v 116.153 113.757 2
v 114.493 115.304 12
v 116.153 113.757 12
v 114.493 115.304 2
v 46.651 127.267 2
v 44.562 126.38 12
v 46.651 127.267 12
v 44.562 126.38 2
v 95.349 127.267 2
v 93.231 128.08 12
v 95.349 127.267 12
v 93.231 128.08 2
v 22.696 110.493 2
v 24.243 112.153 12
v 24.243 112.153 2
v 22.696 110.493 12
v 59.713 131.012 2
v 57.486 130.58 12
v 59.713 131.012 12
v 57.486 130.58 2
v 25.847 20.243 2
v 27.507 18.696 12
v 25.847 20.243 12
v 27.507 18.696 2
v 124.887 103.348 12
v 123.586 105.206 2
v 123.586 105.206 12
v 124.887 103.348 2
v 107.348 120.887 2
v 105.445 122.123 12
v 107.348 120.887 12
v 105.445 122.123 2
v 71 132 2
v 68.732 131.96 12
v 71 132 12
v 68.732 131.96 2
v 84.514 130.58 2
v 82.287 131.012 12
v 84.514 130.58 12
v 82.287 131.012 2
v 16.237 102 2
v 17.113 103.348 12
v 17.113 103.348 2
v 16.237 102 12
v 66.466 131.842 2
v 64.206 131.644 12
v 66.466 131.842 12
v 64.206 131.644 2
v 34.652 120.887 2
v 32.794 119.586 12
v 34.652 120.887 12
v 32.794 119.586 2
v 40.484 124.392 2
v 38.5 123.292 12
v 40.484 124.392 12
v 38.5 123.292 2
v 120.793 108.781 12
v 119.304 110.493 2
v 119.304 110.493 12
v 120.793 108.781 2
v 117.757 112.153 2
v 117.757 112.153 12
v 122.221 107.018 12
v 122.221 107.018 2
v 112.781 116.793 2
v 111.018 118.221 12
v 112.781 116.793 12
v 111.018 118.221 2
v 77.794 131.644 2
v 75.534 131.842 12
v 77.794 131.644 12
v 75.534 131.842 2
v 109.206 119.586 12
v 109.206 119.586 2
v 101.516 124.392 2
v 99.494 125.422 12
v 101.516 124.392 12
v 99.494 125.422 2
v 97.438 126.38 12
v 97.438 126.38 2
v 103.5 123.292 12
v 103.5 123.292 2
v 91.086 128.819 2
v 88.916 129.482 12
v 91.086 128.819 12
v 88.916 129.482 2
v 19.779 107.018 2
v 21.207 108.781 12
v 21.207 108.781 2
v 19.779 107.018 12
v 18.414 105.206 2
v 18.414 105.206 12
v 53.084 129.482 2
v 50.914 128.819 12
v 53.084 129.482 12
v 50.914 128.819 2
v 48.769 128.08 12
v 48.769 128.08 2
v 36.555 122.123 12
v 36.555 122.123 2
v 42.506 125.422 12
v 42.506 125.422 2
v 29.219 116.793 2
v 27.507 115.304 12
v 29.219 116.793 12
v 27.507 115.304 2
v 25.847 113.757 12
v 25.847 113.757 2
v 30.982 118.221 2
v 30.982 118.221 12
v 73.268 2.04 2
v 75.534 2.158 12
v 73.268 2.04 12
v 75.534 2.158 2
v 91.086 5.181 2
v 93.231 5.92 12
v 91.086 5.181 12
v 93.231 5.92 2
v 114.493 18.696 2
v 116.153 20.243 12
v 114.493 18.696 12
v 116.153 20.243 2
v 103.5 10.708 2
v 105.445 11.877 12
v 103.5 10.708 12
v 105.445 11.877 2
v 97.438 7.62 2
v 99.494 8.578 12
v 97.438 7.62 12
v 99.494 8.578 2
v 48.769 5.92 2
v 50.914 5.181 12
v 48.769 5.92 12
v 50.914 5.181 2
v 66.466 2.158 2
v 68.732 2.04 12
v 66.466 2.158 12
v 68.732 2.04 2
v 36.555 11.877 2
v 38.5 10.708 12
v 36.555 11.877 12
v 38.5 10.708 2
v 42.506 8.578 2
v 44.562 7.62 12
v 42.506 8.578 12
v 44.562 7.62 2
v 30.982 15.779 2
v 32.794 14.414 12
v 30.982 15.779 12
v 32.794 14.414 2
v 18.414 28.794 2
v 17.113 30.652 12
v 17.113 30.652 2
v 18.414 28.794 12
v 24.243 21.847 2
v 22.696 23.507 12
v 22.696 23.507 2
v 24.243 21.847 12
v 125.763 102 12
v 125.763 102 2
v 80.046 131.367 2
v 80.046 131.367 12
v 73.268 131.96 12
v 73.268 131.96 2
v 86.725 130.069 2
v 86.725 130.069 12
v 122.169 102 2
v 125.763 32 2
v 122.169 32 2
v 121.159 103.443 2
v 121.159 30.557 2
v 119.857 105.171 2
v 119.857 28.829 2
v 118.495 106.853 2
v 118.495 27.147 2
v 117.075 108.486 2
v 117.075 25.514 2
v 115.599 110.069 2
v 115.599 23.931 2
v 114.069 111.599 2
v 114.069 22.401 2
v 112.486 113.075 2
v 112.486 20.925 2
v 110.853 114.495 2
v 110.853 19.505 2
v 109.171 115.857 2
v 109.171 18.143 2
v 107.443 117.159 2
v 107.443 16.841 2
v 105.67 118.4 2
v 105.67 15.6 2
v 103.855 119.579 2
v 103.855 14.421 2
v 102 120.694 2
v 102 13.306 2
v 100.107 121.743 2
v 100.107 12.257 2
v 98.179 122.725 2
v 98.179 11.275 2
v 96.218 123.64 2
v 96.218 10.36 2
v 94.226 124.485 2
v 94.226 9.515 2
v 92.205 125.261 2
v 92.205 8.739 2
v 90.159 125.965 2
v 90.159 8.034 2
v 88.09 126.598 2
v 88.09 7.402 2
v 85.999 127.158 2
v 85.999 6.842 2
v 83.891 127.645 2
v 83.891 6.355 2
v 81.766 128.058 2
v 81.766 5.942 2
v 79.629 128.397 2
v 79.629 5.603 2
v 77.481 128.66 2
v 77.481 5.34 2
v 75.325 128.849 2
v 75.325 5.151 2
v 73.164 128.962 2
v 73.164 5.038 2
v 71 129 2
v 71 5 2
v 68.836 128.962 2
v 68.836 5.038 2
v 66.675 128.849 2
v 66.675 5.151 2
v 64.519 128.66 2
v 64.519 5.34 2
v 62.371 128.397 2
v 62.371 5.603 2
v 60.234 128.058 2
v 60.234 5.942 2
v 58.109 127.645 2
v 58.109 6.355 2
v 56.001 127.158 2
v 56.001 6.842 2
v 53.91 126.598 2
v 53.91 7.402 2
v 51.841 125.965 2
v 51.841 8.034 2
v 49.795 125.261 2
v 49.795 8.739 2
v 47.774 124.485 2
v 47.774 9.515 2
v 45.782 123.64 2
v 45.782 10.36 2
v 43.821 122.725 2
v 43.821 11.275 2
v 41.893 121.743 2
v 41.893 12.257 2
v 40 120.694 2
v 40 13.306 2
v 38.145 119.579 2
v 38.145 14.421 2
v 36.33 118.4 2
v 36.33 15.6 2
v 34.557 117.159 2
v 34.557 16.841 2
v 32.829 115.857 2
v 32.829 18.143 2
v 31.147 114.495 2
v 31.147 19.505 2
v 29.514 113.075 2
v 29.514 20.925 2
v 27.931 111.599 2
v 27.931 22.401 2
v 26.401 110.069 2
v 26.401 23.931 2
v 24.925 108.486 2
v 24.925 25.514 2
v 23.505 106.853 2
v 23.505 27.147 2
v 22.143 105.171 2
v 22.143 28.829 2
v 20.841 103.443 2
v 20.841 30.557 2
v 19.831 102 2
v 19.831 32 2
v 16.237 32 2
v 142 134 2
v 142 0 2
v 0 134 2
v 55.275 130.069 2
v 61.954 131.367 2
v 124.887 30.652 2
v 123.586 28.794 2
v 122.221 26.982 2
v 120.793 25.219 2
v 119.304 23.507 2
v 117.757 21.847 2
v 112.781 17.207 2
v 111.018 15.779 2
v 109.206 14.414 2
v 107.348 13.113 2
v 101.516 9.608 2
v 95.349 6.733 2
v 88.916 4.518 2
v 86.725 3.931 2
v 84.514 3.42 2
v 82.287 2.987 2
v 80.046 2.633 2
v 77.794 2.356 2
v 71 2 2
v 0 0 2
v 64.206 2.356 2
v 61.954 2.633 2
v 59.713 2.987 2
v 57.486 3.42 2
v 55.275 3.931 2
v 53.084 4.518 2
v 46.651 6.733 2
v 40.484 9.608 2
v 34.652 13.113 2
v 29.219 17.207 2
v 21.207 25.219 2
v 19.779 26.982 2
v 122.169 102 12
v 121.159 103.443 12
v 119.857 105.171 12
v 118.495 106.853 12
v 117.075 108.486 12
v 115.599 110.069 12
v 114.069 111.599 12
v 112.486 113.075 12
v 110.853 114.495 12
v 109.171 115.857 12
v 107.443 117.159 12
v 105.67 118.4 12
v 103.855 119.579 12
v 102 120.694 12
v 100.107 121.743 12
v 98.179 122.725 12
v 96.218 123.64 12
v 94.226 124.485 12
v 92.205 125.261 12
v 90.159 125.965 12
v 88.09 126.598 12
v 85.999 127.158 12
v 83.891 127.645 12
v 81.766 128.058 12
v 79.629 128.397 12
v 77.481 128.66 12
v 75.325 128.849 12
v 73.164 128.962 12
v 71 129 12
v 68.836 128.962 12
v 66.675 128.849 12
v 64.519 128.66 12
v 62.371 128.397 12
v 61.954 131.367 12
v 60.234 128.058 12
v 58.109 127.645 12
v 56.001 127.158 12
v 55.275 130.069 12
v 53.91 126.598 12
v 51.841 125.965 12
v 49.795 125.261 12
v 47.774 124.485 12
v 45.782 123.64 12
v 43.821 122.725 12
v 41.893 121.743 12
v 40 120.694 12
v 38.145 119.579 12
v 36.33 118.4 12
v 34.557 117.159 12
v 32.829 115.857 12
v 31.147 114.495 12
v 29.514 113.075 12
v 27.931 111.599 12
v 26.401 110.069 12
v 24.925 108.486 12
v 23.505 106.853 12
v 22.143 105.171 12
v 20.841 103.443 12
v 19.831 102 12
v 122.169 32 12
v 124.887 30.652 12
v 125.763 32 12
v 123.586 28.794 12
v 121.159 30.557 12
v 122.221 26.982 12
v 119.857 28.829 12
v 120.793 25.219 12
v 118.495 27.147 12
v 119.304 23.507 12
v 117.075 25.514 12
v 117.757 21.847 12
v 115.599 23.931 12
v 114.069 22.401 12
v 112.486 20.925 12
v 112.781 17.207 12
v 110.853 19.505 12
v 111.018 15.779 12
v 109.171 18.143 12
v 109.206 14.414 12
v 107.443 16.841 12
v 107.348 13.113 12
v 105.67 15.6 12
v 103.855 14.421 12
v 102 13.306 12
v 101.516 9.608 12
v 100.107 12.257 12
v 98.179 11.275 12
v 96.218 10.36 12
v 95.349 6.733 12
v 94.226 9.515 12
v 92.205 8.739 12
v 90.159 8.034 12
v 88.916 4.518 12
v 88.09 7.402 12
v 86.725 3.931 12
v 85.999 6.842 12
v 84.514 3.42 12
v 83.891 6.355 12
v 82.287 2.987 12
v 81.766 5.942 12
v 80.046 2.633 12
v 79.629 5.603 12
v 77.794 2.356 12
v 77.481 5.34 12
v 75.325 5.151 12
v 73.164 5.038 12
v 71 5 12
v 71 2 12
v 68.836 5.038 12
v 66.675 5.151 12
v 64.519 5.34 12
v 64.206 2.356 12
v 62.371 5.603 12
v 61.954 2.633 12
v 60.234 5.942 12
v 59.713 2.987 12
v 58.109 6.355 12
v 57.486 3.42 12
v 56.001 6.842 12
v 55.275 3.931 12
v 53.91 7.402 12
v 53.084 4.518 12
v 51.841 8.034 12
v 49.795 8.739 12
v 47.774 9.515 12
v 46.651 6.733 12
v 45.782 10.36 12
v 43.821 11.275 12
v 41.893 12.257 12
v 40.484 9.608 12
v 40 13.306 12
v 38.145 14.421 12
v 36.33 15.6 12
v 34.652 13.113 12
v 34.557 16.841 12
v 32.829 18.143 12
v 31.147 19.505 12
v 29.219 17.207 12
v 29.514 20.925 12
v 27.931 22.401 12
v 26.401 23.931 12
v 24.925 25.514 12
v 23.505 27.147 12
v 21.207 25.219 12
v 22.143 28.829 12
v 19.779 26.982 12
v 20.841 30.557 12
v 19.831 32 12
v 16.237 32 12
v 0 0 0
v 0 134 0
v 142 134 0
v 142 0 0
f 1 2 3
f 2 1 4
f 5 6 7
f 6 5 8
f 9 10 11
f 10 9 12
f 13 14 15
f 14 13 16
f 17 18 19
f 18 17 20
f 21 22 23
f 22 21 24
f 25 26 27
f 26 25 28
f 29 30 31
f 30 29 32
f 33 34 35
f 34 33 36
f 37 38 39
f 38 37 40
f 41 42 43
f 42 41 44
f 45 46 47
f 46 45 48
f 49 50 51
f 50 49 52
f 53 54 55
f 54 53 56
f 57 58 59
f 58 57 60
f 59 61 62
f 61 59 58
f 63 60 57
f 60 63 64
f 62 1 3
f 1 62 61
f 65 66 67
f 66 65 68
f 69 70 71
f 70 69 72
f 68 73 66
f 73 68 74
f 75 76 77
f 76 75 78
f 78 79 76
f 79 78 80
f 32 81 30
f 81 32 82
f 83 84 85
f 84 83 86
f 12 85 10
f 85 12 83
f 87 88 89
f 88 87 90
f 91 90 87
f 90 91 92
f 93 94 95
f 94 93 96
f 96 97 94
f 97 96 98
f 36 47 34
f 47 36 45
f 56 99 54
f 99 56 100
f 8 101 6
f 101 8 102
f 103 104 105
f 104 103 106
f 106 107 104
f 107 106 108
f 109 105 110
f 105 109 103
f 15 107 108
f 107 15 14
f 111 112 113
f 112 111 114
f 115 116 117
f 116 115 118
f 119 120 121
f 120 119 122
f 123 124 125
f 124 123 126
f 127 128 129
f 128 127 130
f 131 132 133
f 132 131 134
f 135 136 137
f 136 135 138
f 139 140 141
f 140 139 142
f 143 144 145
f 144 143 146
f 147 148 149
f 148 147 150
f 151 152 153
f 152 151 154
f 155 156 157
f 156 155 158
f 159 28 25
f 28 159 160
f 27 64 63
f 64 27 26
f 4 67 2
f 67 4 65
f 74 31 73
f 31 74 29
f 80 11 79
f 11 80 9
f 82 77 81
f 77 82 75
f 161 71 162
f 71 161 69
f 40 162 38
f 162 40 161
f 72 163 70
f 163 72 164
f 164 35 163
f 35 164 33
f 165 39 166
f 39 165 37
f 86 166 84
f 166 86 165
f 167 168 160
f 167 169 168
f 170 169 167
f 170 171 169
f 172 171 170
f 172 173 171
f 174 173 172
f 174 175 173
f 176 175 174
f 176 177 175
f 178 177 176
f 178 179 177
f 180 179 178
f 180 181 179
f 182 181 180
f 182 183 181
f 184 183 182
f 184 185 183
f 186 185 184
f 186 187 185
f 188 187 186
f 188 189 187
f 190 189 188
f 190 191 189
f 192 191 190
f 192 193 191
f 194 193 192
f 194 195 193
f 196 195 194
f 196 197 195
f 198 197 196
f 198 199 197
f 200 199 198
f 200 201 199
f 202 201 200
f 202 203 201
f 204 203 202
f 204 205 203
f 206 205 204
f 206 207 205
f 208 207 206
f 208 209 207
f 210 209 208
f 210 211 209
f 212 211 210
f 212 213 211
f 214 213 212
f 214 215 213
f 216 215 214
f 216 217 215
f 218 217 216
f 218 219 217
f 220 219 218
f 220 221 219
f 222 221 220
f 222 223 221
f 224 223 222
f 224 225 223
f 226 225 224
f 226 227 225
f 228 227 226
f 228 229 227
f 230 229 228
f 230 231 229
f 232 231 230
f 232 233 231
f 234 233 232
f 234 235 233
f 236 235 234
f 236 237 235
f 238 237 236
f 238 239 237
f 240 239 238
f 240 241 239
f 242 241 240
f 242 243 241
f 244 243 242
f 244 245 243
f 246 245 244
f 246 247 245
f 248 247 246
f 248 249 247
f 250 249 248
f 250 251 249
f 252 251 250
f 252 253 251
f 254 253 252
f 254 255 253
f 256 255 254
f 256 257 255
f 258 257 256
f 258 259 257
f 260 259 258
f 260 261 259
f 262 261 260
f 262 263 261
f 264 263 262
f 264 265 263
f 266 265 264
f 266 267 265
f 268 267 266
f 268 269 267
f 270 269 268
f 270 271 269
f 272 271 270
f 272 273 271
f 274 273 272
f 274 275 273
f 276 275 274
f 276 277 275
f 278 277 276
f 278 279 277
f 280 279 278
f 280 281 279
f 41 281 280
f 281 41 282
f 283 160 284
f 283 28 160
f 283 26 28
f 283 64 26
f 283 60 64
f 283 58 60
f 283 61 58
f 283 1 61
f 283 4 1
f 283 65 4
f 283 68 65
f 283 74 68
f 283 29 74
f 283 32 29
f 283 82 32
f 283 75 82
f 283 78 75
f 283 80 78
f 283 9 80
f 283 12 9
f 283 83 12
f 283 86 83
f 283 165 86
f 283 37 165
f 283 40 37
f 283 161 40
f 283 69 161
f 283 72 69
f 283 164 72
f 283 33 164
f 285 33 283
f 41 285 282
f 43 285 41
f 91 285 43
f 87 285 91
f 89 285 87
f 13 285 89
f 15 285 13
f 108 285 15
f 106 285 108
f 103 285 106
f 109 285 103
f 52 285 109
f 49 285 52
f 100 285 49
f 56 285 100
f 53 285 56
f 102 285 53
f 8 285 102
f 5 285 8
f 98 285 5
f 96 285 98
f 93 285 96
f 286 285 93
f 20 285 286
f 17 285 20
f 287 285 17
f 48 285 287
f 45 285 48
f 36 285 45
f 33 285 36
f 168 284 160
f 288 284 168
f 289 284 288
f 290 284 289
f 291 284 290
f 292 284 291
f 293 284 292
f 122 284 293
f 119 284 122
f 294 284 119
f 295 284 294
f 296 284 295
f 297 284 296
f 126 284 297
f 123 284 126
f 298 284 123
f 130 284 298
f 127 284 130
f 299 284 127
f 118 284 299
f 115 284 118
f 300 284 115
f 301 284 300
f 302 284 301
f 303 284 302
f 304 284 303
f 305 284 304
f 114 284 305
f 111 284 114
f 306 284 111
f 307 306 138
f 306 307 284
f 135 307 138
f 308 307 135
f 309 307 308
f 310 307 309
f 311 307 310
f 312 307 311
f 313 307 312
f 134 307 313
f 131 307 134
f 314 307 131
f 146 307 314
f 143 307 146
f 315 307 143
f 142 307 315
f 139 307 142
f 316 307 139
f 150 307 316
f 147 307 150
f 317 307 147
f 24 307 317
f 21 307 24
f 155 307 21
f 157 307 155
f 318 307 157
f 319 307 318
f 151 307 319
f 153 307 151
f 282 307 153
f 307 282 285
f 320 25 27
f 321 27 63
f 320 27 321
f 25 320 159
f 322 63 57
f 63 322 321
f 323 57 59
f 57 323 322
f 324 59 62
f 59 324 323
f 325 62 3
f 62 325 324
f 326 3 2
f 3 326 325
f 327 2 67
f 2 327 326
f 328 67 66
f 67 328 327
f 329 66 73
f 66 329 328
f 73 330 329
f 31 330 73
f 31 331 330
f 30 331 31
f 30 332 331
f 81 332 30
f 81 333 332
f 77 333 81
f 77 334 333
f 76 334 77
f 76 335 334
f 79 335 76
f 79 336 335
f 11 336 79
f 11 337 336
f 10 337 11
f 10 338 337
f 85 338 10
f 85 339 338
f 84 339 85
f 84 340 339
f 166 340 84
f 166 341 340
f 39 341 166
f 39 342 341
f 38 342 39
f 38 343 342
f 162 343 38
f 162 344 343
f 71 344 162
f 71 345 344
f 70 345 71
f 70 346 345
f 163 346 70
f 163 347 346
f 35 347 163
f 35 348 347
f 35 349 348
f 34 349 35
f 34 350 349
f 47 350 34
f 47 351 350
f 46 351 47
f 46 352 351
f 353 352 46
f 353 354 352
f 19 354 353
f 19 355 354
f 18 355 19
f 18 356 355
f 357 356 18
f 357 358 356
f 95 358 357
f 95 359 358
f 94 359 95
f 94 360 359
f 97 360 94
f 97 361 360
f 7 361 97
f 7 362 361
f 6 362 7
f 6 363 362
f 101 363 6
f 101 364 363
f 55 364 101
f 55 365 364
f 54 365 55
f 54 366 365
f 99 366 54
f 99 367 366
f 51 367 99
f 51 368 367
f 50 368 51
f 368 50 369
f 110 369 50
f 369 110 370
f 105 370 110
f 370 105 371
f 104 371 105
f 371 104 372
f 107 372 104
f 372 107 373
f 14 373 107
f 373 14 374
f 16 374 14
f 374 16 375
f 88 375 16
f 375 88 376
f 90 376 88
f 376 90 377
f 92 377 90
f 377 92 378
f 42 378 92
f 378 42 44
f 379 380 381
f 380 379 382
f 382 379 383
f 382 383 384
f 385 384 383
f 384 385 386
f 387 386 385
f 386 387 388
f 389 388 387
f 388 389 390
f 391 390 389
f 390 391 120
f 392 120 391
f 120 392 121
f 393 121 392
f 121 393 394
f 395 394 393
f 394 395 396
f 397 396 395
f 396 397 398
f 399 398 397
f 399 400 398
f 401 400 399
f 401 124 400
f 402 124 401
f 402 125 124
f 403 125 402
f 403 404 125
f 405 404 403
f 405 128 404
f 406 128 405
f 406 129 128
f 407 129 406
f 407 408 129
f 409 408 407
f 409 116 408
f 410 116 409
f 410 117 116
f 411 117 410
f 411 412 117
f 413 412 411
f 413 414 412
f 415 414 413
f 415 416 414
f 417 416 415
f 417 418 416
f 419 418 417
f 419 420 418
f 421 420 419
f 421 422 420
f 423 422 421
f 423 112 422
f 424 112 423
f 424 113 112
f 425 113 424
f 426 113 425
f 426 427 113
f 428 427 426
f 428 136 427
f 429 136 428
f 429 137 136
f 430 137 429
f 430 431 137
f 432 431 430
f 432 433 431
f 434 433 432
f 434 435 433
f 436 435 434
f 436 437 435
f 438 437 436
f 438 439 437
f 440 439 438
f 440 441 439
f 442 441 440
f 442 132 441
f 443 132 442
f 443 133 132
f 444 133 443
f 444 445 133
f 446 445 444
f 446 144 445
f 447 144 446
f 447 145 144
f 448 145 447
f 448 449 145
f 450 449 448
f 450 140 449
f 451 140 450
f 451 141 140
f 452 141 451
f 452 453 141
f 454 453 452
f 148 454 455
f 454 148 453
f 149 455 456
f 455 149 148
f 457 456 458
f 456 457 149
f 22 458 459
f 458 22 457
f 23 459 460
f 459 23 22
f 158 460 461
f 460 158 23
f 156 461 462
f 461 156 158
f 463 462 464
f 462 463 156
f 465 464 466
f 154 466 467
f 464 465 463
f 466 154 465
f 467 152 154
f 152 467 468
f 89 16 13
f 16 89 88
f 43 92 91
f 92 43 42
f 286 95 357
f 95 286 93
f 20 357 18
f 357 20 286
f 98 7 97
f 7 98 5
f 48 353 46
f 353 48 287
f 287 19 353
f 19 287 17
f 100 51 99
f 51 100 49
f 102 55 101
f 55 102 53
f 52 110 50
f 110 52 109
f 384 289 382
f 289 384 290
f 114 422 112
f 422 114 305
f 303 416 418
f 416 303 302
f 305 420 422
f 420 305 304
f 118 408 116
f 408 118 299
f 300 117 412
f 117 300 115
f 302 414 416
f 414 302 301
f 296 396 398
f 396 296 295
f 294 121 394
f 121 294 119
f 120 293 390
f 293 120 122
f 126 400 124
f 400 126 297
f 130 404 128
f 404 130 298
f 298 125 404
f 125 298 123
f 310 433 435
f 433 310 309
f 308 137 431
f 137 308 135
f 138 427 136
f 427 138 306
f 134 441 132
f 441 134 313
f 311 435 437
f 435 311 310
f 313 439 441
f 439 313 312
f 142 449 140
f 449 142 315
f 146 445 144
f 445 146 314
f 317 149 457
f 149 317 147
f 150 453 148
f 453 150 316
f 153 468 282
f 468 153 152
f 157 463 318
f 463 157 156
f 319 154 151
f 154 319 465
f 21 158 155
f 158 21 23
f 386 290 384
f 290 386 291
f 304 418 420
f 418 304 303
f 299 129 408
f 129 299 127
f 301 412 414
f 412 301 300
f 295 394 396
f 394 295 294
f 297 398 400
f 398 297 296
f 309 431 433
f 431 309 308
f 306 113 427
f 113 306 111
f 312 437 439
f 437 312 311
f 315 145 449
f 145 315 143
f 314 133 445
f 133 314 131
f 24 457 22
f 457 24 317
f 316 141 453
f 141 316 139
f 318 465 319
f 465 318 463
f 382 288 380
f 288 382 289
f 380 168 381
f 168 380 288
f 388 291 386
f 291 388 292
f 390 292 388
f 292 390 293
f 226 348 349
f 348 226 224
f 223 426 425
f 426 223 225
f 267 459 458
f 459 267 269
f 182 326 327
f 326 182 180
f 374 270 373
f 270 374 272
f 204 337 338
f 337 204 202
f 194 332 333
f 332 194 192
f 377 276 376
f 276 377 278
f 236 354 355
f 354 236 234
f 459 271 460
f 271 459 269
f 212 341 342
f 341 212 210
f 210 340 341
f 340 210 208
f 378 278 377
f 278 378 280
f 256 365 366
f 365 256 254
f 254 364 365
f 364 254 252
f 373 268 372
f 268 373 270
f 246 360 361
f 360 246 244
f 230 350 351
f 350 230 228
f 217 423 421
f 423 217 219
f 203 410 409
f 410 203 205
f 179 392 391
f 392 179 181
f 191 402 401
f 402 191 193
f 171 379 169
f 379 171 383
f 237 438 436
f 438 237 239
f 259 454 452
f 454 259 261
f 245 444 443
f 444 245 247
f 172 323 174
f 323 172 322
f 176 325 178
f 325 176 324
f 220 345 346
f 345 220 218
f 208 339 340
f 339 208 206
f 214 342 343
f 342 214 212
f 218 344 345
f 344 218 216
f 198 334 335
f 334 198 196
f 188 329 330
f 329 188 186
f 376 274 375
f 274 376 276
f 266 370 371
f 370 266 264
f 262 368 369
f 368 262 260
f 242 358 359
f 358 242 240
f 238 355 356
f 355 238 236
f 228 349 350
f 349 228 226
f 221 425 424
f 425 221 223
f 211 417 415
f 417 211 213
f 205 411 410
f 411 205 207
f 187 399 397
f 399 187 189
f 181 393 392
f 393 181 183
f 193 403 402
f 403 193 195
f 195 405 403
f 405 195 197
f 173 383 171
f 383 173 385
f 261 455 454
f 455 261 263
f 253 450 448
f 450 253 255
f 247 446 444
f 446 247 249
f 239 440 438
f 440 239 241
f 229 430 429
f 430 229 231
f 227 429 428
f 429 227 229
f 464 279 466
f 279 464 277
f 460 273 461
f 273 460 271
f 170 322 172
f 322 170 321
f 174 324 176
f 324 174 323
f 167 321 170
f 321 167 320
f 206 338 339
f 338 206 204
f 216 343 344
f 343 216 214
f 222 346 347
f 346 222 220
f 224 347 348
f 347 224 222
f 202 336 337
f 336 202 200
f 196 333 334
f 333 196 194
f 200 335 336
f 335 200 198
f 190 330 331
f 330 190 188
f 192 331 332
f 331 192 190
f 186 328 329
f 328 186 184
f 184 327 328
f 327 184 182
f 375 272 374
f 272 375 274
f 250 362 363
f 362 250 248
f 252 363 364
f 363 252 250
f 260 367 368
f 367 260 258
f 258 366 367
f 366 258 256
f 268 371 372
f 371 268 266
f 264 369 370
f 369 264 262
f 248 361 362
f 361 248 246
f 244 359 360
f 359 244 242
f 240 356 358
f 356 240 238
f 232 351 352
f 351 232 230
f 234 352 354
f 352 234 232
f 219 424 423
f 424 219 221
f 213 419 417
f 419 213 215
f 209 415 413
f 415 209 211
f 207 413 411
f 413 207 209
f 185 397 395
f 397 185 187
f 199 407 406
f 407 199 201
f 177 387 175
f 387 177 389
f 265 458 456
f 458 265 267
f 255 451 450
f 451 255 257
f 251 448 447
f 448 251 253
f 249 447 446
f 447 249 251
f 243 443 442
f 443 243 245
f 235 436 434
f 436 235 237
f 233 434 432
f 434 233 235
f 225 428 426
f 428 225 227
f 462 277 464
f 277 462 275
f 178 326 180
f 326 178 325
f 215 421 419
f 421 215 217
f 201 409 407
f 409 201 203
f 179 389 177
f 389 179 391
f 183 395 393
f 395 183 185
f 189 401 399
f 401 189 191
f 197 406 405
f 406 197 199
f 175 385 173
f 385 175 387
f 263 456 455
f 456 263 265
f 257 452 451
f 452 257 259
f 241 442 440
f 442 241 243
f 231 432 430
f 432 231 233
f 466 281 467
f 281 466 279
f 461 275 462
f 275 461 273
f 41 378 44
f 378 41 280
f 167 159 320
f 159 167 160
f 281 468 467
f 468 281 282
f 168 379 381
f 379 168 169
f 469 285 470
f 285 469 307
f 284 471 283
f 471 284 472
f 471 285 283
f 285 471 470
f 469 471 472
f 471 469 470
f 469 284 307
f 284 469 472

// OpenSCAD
// file: parameters.scad
//parameters
//thickness of box sides
wall = 2;

//width of cards, including sleeves and extra space
crdX = 70;

//length of cards including sleeves and extra space
crdY = 93;                  

//height of the entire pile of cards.  modify if you have more cards
crdZ = 18;

//how much of the main box is tapered to accommodate the lid
lidY = 25;

//the size of the taper
lidDiff = 0.75;

//The amount of "looseness" between the lid and the box on each side
lidSpacing = 0.25;

sideFontName="Impact";
sideFontSize=10;
sideFontLeftPadding=2;

//constant to avoid coincident faces.  don't change this
_min=0.1;

//calculated values
trayX = crdX+(2*wall);
trayY = crdY+(2*wall);
trayZ = crdZ+(2*wall);

// values for card tray
crdTrayZ = 23 + wall;
trayNotch = 40;
trayFontSize = 16;

// non-card well
wellX = 142;

lvl1Z = 12;

// places discs
discR = 60;
discPadding = 2;
discHolder = 3;
discBrim = 2;
discNotch = 70;
holderY = (2 * discR) + (2 * discHolder) + (2 * discPadding) + (2 * discBrim);

//miscellaneous tray
boxSize = 243;
miscBottom = 1;
miscX = wellX;
miscY = boxSize - holderY;
miscZ = lvl1Z;
miscWall=1;

//blood tokens tray
// same basic size as the places disc holder
btWall = 1;
btBottom = 2;
btWellDepth = 18;
btZ = btBottom + btWellDepth;
btWellX = (wellX - (5*btWall))/4;

//blood tokens ks
// same basic size as the miscellaneous tray
btkWall = 1;
btkBottom = 2;
btkWellDepth = 18;
btkZ = btkBottom + btkWellDepth;
btkWellX = (wellX - (5*btWall))/4;
// main file
include <parameters.scad>;

circleX = wellX/2;
circleY = holderY/2;

cube([wellX,holderY,2]);

difference(){
    translate([circleX,circleY,2])
    cylinder(lvl1Z-2, discR + discPadding + discHolder, discR + discPadding + discHolder, $fn=180);

    translate([circleX,circleY,2-_min])
    color("red")
    cylinder(lvl1Z-1, discR + discPadding, discR + discPadding, $fn=180);

    translate([0,holderY/2 - discNotch/2 ,2 - _min])
    cube([wellX,discNotch,lvl1Z+5]);

}
